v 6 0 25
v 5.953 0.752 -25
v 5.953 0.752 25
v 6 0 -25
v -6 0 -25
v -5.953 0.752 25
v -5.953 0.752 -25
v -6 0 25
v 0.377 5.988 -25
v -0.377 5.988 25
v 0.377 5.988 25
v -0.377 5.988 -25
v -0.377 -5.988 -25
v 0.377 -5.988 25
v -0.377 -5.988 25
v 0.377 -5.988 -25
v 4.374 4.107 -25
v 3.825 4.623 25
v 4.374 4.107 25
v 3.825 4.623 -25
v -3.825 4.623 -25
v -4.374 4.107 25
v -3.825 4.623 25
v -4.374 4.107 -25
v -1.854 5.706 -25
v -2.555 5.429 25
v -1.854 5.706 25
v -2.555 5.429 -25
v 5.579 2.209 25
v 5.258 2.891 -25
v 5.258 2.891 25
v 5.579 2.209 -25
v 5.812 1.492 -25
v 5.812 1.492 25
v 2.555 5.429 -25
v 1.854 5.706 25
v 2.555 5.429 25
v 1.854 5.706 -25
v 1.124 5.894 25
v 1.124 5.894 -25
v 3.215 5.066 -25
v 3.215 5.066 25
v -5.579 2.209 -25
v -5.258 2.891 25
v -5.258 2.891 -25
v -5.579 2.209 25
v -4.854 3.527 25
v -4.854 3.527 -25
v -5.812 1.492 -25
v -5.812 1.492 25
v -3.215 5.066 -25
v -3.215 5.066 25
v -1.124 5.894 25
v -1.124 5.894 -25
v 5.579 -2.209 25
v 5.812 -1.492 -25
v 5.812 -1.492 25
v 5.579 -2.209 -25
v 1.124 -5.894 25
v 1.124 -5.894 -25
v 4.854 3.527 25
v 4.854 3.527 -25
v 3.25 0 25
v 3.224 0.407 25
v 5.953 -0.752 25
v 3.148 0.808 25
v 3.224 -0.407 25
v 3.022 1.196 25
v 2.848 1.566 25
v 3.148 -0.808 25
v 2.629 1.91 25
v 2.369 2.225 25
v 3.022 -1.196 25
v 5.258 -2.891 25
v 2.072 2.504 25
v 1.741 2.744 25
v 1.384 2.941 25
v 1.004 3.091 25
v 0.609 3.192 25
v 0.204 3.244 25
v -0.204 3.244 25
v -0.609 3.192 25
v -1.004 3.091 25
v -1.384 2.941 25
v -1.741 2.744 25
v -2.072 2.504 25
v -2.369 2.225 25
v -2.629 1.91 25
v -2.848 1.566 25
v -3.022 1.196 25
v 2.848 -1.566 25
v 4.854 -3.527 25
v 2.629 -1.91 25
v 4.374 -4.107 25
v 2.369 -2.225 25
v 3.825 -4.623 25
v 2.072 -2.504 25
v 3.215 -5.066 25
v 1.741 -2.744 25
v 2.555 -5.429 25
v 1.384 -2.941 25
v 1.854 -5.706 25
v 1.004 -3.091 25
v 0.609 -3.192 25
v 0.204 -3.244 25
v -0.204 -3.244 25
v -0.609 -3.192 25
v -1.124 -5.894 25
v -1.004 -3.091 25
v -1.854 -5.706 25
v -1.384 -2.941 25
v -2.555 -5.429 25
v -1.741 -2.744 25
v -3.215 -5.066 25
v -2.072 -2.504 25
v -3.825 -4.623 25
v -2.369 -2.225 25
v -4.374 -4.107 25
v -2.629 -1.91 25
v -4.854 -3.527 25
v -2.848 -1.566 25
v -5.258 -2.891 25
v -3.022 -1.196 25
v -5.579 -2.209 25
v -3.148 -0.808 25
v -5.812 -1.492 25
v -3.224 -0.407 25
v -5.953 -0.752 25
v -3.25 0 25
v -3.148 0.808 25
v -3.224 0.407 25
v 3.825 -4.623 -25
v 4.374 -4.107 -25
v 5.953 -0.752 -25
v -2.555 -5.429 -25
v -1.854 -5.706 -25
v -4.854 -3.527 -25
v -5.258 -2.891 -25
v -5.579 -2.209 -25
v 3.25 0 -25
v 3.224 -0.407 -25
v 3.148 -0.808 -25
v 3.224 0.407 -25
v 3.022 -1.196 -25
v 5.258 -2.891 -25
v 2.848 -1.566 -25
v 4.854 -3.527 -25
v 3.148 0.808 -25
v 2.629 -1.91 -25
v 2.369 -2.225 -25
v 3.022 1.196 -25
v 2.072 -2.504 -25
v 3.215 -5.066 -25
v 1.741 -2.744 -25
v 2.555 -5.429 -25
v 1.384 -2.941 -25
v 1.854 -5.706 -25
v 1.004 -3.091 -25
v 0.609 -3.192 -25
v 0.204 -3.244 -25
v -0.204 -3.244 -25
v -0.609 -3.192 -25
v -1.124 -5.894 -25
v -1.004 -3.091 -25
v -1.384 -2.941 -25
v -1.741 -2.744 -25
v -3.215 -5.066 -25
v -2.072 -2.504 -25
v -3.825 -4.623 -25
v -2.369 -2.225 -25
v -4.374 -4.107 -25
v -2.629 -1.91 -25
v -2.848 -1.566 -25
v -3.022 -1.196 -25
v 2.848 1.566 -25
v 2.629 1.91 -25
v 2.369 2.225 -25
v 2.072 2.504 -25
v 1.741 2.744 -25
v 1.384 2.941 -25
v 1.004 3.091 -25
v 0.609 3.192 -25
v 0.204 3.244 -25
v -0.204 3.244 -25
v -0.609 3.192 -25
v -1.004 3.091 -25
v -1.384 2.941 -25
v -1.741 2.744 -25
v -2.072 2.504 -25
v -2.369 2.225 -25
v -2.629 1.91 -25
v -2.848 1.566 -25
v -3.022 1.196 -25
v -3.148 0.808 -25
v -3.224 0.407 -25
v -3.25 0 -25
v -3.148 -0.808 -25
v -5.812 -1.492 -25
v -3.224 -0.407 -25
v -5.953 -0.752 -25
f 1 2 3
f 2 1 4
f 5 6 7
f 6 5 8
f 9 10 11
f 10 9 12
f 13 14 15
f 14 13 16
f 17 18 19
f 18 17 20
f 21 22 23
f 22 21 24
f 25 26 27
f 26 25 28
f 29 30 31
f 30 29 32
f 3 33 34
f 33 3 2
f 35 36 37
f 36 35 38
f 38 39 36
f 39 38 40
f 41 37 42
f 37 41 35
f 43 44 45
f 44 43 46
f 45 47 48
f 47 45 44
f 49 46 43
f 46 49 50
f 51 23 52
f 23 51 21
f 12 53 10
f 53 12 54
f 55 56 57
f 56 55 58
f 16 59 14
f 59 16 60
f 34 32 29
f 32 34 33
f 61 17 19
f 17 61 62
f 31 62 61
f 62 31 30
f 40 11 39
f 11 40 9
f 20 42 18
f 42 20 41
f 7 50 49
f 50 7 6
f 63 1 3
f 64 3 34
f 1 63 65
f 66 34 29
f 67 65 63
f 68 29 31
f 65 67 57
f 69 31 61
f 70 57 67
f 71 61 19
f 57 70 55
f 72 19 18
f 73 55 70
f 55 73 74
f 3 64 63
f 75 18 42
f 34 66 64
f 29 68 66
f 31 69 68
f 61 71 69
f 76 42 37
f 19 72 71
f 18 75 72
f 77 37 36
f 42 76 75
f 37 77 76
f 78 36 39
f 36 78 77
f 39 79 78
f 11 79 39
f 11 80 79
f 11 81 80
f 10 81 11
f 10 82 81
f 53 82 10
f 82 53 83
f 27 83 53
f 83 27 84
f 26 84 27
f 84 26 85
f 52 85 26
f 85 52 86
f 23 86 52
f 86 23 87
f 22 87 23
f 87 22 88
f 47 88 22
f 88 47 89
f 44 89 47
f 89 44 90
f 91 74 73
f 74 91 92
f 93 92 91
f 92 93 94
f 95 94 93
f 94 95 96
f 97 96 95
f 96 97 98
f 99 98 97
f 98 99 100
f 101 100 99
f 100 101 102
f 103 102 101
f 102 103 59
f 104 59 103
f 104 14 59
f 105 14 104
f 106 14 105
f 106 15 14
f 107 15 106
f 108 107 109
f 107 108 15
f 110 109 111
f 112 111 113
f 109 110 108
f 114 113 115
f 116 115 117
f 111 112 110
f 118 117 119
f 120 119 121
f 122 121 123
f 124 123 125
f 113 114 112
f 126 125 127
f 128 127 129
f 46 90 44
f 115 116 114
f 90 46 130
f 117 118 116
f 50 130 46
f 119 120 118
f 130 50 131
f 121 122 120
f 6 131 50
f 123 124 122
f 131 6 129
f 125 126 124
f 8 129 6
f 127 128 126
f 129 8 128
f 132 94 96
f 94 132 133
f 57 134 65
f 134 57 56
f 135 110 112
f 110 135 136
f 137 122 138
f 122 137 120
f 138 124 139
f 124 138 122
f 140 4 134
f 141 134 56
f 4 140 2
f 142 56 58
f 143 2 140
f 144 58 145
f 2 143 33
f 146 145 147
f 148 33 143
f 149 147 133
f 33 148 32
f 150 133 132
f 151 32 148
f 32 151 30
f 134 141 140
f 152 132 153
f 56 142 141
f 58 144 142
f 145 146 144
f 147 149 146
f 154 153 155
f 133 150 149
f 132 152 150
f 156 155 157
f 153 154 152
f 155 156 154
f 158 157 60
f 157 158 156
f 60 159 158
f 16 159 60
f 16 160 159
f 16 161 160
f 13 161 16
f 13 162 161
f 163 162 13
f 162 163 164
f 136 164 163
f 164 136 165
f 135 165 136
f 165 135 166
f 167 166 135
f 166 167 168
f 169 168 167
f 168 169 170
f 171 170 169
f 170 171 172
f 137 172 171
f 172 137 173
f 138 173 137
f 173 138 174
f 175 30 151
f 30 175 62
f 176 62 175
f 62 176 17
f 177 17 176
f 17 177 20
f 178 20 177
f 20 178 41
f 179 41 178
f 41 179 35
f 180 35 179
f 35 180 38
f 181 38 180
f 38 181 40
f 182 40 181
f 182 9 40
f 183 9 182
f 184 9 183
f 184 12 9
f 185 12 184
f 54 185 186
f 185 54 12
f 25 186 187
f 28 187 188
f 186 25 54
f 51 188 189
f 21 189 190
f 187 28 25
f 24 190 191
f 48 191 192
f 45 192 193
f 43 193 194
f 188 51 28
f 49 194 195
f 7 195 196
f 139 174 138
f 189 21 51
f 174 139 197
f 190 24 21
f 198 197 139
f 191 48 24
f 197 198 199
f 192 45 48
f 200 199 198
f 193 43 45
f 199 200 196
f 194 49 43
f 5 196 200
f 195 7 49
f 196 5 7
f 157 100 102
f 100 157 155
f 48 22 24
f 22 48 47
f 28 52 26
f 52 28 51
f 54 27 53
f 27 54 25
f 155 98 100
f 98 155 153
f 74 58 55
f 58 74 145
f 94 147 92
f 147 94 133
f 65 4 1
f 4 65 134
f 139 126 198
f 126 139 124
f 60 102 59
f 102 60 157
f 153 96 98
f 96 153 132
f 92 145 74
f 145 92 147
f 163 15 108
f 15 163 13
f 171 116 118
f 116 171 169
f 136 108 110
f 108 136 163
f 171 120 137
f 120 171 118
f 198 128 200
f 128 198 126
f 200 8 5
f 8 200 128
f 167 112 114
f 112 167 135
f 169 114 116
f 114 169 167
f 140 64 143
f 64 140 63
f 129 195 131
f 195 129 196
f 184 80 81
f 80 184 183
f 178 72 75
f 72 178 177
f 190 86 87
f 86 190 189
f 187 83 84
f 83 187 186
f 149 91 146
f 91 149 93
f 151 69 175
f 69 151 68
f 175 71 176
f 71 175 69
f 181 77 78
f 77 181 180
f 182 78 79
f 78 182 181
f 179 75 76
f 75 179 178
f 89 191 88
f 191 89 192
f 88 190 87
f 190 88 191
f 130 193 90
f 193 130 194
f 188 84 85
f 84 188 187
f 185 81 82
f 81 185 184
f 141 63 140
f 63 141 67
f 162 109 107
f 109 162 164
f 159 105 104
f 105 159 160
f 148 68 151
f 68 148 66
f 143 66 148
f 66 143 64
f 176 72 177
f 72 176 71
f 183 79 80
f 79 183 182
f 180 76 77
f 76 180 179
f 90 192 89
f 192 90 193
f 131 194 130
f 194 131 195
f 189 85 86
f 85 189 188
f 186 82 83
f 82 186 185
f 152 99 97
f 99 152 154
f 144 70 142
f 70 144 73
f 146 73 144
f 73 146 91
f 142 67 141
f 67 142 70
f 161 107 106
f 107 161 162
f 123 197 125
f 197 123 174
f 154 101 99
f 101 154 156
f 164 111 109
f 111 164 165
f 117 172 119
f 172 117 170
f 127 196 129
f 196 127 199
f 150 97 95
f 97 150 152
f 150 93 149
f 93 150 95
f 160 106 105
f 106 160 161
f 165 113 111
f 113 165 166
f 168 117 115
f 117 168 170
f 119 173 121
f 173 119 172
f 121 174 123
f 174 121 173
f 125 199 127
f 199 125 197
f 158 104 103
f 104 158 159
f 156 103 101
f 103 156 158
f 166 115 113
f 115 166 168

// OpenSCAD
$fn = 50;


difference() {
	union() {
		translate(v = [0, 0, -25.0000000000]) {
			cylinder(h = 50, r = 6.0000000000);
		}
	}
	union() {
		translate(v = [0, 0, -100.0000000000]) {
			cylinder(h = 200, r = 3.2500000000);
		}
	}
}
